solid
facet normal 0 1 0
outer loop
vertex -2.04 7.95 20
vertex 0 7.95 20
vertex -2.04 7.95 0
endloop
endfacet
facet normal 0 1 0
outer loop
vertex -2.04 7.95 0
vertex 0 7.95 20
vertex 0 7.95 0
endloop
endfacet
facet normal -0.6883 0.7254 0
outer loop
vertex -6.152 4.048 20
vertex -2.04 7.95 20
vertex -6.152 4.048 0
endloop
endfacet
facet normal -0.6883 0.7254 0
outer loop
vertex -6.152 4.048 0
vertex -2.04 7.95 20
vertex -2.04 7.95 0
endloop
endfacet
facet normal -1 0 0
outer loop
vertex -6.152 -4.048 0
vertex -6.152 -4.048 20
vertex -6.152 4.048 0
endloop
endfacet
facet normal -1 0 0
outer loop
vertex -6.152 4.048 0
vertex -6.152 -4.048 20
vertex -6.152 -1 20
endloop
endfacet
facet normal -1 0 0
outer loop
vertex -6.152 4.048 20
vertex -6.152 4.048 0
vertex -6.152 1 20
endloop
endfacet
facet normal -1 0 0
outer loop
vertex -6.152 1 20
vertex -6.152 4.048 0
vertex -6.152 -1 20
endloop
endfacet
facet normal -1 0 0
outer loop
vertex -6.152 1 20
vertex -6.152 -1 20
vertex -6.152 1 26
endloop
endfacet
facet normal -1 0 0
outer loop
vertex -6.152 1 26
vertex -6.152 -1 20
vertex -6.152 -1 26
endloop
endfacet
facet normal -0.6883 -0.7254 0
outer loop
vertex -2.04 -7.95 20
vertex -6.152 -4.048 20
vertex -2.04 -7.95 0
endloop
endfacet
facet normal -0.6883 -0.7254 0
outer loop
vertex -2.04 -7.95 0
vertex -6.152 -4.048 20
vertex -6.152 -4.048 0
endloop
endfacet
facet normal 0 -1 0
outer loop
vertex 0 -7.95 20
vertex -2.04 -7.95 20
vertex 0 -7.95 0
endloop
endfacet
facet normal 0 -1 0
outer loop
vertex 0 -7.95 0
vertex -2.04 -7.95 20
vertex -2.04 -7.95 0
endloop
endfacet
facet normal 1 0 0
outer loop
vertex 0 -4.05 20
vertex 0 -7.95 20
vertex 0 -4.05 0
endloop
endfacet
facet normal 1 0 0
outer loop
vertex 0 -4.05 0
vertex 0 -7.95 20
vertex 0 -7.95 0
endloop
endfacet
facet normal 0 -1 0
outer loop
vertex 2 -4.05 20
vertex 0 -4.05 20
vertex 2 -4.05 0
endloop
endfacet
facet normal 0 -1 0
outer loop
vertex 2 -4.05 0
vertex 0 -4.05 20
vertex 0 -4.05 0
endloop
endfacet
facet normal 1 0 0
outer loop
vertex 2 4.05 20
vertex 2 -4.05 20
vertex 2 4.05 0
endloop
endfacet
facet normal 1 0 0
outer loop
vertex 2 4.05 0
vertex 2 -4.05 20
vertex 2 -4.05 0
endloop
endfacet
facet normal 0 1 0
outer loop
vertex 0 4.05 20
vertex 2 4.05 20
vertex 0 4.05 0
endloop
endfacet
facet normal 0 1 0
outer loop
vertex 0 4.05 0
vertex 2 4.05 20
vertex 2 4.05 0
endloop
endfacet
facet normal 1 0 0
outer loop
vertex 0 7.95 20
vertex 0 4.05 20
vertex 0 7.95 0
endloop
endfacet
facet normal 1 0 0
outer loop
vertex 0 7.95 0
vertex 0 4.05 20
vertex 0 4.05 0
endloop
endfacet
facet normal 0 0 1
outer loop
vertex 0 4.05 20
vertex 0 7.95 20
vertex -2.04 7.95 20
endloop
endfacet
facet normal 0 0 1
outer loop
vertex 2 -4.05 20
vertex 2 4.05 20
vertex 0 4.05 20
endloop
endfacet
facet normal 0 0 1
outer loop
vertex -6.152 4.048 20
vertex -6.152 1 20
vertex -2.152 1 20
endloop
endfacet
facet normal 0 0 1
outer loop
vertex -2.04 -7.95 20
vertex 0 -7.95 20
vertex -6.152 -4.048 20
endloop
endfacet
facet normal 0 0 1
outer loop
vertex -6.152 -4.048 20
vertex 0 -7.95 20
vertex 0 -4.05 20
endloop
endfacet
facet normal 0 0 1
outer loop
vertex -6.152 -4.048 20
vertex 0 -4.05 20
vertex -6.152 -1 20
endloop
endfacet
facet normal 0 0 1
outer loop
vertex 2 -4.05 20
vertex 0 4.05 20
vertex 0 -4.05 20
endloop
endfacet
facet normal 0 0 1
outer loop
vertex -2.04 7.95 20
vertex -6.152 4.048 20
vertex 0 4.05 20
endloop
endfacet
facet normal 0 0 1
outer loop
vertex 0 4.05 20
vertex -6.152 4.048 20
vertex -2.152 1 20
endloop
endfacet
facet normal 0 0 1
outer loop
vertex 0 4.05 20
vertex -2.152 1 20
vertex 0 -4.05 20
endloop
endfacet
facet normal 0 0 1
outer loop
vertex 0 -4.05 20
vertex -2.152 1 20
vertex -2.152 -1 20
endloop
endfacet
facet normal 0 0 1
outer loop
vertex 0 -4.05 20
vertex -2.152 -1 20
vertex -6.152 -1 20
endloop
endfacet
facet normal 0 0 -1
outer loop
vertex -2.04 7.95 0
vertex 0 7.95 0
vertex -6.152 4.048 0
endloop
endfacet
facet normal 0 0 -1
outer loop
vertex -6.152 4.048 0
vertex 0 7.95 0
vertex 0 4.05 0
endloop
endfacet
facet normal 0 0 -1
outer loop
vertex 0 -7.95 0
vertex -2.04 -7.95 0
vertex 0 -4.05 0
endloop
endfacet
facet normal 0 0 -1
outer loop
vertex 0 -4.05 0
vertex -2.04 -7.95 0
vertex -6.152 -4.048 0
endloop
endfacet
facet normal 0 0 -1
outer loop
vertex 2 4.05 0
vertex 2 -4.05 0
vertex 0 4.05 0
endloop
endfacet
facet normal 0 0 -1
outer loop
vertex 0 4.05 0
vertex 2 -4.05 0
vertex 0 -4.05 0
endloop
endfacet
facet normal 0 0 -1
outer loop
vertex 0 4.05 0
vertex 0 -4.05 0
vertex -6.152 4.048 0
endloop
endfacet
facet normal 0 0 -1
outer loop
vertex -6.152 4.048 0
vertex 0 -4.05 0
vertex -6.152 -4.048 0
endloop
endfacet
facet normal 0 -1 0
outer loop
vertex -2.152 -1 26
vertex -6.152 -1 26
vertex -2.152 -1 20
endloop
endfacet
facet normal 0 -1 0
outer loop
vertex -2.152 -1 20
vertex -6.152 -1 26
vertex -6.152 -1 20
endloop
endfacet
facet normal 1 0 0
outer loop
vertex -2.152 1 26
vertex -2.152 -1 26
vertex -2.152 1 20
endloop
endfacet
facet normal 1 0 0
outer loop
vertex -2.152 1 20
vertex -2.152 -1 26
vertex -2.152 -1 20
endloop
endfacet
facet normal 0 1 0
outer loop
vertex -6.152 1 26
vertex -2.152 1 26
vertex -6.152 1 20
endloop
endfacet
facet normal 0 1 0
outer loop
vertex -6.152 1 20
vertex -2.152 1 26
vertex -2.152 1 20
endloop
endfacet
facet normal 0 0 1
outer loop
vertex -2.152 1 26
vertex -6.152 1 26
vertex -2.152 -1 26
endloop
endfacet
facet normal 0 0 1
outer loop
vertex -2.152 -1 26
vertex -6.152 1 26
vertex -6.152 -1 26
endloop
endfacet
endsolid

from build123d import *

# Parameters (mm, degrees)
SKETCH2_W           = 2
SKETCH2_H           = 8.1
BOSS_EXTRUDE1_DEPTH = 20
SKETCH3_W           = 4
SKETCH3_H           = 2
BOSS_EXTRUDE2_DEPTH = 6


with BuildPart() as part:
    # Sketch2 → Boss-Extrude1 (new body)
    with BuildSketch(Plane.XY):
        Polygon((-2.04, 7.95), (0, 7.95), (0, -7.95), (-2.04, -7.95), (-6.152414984, -4.048), (-6.152414984, 4.048), align=None)
        with Locations((1, 0)):
            Rectangle(SKETCH2_W, SKETCH2_H)
    extrude(amount=BOSS_EXTRUDE1_DEPTH)

    # Sketch3 → Boss-Extrude2 (add)
    with BuildSketch(Plane.XY.offset(20)):
        with Locations((-4.152414984, 0)):
            Rectangle(SKETCH3_W, SKETCH3_H)
    extrude(amount=BOSS_EXTRUDE2_DEPTH)


solid = part.part
